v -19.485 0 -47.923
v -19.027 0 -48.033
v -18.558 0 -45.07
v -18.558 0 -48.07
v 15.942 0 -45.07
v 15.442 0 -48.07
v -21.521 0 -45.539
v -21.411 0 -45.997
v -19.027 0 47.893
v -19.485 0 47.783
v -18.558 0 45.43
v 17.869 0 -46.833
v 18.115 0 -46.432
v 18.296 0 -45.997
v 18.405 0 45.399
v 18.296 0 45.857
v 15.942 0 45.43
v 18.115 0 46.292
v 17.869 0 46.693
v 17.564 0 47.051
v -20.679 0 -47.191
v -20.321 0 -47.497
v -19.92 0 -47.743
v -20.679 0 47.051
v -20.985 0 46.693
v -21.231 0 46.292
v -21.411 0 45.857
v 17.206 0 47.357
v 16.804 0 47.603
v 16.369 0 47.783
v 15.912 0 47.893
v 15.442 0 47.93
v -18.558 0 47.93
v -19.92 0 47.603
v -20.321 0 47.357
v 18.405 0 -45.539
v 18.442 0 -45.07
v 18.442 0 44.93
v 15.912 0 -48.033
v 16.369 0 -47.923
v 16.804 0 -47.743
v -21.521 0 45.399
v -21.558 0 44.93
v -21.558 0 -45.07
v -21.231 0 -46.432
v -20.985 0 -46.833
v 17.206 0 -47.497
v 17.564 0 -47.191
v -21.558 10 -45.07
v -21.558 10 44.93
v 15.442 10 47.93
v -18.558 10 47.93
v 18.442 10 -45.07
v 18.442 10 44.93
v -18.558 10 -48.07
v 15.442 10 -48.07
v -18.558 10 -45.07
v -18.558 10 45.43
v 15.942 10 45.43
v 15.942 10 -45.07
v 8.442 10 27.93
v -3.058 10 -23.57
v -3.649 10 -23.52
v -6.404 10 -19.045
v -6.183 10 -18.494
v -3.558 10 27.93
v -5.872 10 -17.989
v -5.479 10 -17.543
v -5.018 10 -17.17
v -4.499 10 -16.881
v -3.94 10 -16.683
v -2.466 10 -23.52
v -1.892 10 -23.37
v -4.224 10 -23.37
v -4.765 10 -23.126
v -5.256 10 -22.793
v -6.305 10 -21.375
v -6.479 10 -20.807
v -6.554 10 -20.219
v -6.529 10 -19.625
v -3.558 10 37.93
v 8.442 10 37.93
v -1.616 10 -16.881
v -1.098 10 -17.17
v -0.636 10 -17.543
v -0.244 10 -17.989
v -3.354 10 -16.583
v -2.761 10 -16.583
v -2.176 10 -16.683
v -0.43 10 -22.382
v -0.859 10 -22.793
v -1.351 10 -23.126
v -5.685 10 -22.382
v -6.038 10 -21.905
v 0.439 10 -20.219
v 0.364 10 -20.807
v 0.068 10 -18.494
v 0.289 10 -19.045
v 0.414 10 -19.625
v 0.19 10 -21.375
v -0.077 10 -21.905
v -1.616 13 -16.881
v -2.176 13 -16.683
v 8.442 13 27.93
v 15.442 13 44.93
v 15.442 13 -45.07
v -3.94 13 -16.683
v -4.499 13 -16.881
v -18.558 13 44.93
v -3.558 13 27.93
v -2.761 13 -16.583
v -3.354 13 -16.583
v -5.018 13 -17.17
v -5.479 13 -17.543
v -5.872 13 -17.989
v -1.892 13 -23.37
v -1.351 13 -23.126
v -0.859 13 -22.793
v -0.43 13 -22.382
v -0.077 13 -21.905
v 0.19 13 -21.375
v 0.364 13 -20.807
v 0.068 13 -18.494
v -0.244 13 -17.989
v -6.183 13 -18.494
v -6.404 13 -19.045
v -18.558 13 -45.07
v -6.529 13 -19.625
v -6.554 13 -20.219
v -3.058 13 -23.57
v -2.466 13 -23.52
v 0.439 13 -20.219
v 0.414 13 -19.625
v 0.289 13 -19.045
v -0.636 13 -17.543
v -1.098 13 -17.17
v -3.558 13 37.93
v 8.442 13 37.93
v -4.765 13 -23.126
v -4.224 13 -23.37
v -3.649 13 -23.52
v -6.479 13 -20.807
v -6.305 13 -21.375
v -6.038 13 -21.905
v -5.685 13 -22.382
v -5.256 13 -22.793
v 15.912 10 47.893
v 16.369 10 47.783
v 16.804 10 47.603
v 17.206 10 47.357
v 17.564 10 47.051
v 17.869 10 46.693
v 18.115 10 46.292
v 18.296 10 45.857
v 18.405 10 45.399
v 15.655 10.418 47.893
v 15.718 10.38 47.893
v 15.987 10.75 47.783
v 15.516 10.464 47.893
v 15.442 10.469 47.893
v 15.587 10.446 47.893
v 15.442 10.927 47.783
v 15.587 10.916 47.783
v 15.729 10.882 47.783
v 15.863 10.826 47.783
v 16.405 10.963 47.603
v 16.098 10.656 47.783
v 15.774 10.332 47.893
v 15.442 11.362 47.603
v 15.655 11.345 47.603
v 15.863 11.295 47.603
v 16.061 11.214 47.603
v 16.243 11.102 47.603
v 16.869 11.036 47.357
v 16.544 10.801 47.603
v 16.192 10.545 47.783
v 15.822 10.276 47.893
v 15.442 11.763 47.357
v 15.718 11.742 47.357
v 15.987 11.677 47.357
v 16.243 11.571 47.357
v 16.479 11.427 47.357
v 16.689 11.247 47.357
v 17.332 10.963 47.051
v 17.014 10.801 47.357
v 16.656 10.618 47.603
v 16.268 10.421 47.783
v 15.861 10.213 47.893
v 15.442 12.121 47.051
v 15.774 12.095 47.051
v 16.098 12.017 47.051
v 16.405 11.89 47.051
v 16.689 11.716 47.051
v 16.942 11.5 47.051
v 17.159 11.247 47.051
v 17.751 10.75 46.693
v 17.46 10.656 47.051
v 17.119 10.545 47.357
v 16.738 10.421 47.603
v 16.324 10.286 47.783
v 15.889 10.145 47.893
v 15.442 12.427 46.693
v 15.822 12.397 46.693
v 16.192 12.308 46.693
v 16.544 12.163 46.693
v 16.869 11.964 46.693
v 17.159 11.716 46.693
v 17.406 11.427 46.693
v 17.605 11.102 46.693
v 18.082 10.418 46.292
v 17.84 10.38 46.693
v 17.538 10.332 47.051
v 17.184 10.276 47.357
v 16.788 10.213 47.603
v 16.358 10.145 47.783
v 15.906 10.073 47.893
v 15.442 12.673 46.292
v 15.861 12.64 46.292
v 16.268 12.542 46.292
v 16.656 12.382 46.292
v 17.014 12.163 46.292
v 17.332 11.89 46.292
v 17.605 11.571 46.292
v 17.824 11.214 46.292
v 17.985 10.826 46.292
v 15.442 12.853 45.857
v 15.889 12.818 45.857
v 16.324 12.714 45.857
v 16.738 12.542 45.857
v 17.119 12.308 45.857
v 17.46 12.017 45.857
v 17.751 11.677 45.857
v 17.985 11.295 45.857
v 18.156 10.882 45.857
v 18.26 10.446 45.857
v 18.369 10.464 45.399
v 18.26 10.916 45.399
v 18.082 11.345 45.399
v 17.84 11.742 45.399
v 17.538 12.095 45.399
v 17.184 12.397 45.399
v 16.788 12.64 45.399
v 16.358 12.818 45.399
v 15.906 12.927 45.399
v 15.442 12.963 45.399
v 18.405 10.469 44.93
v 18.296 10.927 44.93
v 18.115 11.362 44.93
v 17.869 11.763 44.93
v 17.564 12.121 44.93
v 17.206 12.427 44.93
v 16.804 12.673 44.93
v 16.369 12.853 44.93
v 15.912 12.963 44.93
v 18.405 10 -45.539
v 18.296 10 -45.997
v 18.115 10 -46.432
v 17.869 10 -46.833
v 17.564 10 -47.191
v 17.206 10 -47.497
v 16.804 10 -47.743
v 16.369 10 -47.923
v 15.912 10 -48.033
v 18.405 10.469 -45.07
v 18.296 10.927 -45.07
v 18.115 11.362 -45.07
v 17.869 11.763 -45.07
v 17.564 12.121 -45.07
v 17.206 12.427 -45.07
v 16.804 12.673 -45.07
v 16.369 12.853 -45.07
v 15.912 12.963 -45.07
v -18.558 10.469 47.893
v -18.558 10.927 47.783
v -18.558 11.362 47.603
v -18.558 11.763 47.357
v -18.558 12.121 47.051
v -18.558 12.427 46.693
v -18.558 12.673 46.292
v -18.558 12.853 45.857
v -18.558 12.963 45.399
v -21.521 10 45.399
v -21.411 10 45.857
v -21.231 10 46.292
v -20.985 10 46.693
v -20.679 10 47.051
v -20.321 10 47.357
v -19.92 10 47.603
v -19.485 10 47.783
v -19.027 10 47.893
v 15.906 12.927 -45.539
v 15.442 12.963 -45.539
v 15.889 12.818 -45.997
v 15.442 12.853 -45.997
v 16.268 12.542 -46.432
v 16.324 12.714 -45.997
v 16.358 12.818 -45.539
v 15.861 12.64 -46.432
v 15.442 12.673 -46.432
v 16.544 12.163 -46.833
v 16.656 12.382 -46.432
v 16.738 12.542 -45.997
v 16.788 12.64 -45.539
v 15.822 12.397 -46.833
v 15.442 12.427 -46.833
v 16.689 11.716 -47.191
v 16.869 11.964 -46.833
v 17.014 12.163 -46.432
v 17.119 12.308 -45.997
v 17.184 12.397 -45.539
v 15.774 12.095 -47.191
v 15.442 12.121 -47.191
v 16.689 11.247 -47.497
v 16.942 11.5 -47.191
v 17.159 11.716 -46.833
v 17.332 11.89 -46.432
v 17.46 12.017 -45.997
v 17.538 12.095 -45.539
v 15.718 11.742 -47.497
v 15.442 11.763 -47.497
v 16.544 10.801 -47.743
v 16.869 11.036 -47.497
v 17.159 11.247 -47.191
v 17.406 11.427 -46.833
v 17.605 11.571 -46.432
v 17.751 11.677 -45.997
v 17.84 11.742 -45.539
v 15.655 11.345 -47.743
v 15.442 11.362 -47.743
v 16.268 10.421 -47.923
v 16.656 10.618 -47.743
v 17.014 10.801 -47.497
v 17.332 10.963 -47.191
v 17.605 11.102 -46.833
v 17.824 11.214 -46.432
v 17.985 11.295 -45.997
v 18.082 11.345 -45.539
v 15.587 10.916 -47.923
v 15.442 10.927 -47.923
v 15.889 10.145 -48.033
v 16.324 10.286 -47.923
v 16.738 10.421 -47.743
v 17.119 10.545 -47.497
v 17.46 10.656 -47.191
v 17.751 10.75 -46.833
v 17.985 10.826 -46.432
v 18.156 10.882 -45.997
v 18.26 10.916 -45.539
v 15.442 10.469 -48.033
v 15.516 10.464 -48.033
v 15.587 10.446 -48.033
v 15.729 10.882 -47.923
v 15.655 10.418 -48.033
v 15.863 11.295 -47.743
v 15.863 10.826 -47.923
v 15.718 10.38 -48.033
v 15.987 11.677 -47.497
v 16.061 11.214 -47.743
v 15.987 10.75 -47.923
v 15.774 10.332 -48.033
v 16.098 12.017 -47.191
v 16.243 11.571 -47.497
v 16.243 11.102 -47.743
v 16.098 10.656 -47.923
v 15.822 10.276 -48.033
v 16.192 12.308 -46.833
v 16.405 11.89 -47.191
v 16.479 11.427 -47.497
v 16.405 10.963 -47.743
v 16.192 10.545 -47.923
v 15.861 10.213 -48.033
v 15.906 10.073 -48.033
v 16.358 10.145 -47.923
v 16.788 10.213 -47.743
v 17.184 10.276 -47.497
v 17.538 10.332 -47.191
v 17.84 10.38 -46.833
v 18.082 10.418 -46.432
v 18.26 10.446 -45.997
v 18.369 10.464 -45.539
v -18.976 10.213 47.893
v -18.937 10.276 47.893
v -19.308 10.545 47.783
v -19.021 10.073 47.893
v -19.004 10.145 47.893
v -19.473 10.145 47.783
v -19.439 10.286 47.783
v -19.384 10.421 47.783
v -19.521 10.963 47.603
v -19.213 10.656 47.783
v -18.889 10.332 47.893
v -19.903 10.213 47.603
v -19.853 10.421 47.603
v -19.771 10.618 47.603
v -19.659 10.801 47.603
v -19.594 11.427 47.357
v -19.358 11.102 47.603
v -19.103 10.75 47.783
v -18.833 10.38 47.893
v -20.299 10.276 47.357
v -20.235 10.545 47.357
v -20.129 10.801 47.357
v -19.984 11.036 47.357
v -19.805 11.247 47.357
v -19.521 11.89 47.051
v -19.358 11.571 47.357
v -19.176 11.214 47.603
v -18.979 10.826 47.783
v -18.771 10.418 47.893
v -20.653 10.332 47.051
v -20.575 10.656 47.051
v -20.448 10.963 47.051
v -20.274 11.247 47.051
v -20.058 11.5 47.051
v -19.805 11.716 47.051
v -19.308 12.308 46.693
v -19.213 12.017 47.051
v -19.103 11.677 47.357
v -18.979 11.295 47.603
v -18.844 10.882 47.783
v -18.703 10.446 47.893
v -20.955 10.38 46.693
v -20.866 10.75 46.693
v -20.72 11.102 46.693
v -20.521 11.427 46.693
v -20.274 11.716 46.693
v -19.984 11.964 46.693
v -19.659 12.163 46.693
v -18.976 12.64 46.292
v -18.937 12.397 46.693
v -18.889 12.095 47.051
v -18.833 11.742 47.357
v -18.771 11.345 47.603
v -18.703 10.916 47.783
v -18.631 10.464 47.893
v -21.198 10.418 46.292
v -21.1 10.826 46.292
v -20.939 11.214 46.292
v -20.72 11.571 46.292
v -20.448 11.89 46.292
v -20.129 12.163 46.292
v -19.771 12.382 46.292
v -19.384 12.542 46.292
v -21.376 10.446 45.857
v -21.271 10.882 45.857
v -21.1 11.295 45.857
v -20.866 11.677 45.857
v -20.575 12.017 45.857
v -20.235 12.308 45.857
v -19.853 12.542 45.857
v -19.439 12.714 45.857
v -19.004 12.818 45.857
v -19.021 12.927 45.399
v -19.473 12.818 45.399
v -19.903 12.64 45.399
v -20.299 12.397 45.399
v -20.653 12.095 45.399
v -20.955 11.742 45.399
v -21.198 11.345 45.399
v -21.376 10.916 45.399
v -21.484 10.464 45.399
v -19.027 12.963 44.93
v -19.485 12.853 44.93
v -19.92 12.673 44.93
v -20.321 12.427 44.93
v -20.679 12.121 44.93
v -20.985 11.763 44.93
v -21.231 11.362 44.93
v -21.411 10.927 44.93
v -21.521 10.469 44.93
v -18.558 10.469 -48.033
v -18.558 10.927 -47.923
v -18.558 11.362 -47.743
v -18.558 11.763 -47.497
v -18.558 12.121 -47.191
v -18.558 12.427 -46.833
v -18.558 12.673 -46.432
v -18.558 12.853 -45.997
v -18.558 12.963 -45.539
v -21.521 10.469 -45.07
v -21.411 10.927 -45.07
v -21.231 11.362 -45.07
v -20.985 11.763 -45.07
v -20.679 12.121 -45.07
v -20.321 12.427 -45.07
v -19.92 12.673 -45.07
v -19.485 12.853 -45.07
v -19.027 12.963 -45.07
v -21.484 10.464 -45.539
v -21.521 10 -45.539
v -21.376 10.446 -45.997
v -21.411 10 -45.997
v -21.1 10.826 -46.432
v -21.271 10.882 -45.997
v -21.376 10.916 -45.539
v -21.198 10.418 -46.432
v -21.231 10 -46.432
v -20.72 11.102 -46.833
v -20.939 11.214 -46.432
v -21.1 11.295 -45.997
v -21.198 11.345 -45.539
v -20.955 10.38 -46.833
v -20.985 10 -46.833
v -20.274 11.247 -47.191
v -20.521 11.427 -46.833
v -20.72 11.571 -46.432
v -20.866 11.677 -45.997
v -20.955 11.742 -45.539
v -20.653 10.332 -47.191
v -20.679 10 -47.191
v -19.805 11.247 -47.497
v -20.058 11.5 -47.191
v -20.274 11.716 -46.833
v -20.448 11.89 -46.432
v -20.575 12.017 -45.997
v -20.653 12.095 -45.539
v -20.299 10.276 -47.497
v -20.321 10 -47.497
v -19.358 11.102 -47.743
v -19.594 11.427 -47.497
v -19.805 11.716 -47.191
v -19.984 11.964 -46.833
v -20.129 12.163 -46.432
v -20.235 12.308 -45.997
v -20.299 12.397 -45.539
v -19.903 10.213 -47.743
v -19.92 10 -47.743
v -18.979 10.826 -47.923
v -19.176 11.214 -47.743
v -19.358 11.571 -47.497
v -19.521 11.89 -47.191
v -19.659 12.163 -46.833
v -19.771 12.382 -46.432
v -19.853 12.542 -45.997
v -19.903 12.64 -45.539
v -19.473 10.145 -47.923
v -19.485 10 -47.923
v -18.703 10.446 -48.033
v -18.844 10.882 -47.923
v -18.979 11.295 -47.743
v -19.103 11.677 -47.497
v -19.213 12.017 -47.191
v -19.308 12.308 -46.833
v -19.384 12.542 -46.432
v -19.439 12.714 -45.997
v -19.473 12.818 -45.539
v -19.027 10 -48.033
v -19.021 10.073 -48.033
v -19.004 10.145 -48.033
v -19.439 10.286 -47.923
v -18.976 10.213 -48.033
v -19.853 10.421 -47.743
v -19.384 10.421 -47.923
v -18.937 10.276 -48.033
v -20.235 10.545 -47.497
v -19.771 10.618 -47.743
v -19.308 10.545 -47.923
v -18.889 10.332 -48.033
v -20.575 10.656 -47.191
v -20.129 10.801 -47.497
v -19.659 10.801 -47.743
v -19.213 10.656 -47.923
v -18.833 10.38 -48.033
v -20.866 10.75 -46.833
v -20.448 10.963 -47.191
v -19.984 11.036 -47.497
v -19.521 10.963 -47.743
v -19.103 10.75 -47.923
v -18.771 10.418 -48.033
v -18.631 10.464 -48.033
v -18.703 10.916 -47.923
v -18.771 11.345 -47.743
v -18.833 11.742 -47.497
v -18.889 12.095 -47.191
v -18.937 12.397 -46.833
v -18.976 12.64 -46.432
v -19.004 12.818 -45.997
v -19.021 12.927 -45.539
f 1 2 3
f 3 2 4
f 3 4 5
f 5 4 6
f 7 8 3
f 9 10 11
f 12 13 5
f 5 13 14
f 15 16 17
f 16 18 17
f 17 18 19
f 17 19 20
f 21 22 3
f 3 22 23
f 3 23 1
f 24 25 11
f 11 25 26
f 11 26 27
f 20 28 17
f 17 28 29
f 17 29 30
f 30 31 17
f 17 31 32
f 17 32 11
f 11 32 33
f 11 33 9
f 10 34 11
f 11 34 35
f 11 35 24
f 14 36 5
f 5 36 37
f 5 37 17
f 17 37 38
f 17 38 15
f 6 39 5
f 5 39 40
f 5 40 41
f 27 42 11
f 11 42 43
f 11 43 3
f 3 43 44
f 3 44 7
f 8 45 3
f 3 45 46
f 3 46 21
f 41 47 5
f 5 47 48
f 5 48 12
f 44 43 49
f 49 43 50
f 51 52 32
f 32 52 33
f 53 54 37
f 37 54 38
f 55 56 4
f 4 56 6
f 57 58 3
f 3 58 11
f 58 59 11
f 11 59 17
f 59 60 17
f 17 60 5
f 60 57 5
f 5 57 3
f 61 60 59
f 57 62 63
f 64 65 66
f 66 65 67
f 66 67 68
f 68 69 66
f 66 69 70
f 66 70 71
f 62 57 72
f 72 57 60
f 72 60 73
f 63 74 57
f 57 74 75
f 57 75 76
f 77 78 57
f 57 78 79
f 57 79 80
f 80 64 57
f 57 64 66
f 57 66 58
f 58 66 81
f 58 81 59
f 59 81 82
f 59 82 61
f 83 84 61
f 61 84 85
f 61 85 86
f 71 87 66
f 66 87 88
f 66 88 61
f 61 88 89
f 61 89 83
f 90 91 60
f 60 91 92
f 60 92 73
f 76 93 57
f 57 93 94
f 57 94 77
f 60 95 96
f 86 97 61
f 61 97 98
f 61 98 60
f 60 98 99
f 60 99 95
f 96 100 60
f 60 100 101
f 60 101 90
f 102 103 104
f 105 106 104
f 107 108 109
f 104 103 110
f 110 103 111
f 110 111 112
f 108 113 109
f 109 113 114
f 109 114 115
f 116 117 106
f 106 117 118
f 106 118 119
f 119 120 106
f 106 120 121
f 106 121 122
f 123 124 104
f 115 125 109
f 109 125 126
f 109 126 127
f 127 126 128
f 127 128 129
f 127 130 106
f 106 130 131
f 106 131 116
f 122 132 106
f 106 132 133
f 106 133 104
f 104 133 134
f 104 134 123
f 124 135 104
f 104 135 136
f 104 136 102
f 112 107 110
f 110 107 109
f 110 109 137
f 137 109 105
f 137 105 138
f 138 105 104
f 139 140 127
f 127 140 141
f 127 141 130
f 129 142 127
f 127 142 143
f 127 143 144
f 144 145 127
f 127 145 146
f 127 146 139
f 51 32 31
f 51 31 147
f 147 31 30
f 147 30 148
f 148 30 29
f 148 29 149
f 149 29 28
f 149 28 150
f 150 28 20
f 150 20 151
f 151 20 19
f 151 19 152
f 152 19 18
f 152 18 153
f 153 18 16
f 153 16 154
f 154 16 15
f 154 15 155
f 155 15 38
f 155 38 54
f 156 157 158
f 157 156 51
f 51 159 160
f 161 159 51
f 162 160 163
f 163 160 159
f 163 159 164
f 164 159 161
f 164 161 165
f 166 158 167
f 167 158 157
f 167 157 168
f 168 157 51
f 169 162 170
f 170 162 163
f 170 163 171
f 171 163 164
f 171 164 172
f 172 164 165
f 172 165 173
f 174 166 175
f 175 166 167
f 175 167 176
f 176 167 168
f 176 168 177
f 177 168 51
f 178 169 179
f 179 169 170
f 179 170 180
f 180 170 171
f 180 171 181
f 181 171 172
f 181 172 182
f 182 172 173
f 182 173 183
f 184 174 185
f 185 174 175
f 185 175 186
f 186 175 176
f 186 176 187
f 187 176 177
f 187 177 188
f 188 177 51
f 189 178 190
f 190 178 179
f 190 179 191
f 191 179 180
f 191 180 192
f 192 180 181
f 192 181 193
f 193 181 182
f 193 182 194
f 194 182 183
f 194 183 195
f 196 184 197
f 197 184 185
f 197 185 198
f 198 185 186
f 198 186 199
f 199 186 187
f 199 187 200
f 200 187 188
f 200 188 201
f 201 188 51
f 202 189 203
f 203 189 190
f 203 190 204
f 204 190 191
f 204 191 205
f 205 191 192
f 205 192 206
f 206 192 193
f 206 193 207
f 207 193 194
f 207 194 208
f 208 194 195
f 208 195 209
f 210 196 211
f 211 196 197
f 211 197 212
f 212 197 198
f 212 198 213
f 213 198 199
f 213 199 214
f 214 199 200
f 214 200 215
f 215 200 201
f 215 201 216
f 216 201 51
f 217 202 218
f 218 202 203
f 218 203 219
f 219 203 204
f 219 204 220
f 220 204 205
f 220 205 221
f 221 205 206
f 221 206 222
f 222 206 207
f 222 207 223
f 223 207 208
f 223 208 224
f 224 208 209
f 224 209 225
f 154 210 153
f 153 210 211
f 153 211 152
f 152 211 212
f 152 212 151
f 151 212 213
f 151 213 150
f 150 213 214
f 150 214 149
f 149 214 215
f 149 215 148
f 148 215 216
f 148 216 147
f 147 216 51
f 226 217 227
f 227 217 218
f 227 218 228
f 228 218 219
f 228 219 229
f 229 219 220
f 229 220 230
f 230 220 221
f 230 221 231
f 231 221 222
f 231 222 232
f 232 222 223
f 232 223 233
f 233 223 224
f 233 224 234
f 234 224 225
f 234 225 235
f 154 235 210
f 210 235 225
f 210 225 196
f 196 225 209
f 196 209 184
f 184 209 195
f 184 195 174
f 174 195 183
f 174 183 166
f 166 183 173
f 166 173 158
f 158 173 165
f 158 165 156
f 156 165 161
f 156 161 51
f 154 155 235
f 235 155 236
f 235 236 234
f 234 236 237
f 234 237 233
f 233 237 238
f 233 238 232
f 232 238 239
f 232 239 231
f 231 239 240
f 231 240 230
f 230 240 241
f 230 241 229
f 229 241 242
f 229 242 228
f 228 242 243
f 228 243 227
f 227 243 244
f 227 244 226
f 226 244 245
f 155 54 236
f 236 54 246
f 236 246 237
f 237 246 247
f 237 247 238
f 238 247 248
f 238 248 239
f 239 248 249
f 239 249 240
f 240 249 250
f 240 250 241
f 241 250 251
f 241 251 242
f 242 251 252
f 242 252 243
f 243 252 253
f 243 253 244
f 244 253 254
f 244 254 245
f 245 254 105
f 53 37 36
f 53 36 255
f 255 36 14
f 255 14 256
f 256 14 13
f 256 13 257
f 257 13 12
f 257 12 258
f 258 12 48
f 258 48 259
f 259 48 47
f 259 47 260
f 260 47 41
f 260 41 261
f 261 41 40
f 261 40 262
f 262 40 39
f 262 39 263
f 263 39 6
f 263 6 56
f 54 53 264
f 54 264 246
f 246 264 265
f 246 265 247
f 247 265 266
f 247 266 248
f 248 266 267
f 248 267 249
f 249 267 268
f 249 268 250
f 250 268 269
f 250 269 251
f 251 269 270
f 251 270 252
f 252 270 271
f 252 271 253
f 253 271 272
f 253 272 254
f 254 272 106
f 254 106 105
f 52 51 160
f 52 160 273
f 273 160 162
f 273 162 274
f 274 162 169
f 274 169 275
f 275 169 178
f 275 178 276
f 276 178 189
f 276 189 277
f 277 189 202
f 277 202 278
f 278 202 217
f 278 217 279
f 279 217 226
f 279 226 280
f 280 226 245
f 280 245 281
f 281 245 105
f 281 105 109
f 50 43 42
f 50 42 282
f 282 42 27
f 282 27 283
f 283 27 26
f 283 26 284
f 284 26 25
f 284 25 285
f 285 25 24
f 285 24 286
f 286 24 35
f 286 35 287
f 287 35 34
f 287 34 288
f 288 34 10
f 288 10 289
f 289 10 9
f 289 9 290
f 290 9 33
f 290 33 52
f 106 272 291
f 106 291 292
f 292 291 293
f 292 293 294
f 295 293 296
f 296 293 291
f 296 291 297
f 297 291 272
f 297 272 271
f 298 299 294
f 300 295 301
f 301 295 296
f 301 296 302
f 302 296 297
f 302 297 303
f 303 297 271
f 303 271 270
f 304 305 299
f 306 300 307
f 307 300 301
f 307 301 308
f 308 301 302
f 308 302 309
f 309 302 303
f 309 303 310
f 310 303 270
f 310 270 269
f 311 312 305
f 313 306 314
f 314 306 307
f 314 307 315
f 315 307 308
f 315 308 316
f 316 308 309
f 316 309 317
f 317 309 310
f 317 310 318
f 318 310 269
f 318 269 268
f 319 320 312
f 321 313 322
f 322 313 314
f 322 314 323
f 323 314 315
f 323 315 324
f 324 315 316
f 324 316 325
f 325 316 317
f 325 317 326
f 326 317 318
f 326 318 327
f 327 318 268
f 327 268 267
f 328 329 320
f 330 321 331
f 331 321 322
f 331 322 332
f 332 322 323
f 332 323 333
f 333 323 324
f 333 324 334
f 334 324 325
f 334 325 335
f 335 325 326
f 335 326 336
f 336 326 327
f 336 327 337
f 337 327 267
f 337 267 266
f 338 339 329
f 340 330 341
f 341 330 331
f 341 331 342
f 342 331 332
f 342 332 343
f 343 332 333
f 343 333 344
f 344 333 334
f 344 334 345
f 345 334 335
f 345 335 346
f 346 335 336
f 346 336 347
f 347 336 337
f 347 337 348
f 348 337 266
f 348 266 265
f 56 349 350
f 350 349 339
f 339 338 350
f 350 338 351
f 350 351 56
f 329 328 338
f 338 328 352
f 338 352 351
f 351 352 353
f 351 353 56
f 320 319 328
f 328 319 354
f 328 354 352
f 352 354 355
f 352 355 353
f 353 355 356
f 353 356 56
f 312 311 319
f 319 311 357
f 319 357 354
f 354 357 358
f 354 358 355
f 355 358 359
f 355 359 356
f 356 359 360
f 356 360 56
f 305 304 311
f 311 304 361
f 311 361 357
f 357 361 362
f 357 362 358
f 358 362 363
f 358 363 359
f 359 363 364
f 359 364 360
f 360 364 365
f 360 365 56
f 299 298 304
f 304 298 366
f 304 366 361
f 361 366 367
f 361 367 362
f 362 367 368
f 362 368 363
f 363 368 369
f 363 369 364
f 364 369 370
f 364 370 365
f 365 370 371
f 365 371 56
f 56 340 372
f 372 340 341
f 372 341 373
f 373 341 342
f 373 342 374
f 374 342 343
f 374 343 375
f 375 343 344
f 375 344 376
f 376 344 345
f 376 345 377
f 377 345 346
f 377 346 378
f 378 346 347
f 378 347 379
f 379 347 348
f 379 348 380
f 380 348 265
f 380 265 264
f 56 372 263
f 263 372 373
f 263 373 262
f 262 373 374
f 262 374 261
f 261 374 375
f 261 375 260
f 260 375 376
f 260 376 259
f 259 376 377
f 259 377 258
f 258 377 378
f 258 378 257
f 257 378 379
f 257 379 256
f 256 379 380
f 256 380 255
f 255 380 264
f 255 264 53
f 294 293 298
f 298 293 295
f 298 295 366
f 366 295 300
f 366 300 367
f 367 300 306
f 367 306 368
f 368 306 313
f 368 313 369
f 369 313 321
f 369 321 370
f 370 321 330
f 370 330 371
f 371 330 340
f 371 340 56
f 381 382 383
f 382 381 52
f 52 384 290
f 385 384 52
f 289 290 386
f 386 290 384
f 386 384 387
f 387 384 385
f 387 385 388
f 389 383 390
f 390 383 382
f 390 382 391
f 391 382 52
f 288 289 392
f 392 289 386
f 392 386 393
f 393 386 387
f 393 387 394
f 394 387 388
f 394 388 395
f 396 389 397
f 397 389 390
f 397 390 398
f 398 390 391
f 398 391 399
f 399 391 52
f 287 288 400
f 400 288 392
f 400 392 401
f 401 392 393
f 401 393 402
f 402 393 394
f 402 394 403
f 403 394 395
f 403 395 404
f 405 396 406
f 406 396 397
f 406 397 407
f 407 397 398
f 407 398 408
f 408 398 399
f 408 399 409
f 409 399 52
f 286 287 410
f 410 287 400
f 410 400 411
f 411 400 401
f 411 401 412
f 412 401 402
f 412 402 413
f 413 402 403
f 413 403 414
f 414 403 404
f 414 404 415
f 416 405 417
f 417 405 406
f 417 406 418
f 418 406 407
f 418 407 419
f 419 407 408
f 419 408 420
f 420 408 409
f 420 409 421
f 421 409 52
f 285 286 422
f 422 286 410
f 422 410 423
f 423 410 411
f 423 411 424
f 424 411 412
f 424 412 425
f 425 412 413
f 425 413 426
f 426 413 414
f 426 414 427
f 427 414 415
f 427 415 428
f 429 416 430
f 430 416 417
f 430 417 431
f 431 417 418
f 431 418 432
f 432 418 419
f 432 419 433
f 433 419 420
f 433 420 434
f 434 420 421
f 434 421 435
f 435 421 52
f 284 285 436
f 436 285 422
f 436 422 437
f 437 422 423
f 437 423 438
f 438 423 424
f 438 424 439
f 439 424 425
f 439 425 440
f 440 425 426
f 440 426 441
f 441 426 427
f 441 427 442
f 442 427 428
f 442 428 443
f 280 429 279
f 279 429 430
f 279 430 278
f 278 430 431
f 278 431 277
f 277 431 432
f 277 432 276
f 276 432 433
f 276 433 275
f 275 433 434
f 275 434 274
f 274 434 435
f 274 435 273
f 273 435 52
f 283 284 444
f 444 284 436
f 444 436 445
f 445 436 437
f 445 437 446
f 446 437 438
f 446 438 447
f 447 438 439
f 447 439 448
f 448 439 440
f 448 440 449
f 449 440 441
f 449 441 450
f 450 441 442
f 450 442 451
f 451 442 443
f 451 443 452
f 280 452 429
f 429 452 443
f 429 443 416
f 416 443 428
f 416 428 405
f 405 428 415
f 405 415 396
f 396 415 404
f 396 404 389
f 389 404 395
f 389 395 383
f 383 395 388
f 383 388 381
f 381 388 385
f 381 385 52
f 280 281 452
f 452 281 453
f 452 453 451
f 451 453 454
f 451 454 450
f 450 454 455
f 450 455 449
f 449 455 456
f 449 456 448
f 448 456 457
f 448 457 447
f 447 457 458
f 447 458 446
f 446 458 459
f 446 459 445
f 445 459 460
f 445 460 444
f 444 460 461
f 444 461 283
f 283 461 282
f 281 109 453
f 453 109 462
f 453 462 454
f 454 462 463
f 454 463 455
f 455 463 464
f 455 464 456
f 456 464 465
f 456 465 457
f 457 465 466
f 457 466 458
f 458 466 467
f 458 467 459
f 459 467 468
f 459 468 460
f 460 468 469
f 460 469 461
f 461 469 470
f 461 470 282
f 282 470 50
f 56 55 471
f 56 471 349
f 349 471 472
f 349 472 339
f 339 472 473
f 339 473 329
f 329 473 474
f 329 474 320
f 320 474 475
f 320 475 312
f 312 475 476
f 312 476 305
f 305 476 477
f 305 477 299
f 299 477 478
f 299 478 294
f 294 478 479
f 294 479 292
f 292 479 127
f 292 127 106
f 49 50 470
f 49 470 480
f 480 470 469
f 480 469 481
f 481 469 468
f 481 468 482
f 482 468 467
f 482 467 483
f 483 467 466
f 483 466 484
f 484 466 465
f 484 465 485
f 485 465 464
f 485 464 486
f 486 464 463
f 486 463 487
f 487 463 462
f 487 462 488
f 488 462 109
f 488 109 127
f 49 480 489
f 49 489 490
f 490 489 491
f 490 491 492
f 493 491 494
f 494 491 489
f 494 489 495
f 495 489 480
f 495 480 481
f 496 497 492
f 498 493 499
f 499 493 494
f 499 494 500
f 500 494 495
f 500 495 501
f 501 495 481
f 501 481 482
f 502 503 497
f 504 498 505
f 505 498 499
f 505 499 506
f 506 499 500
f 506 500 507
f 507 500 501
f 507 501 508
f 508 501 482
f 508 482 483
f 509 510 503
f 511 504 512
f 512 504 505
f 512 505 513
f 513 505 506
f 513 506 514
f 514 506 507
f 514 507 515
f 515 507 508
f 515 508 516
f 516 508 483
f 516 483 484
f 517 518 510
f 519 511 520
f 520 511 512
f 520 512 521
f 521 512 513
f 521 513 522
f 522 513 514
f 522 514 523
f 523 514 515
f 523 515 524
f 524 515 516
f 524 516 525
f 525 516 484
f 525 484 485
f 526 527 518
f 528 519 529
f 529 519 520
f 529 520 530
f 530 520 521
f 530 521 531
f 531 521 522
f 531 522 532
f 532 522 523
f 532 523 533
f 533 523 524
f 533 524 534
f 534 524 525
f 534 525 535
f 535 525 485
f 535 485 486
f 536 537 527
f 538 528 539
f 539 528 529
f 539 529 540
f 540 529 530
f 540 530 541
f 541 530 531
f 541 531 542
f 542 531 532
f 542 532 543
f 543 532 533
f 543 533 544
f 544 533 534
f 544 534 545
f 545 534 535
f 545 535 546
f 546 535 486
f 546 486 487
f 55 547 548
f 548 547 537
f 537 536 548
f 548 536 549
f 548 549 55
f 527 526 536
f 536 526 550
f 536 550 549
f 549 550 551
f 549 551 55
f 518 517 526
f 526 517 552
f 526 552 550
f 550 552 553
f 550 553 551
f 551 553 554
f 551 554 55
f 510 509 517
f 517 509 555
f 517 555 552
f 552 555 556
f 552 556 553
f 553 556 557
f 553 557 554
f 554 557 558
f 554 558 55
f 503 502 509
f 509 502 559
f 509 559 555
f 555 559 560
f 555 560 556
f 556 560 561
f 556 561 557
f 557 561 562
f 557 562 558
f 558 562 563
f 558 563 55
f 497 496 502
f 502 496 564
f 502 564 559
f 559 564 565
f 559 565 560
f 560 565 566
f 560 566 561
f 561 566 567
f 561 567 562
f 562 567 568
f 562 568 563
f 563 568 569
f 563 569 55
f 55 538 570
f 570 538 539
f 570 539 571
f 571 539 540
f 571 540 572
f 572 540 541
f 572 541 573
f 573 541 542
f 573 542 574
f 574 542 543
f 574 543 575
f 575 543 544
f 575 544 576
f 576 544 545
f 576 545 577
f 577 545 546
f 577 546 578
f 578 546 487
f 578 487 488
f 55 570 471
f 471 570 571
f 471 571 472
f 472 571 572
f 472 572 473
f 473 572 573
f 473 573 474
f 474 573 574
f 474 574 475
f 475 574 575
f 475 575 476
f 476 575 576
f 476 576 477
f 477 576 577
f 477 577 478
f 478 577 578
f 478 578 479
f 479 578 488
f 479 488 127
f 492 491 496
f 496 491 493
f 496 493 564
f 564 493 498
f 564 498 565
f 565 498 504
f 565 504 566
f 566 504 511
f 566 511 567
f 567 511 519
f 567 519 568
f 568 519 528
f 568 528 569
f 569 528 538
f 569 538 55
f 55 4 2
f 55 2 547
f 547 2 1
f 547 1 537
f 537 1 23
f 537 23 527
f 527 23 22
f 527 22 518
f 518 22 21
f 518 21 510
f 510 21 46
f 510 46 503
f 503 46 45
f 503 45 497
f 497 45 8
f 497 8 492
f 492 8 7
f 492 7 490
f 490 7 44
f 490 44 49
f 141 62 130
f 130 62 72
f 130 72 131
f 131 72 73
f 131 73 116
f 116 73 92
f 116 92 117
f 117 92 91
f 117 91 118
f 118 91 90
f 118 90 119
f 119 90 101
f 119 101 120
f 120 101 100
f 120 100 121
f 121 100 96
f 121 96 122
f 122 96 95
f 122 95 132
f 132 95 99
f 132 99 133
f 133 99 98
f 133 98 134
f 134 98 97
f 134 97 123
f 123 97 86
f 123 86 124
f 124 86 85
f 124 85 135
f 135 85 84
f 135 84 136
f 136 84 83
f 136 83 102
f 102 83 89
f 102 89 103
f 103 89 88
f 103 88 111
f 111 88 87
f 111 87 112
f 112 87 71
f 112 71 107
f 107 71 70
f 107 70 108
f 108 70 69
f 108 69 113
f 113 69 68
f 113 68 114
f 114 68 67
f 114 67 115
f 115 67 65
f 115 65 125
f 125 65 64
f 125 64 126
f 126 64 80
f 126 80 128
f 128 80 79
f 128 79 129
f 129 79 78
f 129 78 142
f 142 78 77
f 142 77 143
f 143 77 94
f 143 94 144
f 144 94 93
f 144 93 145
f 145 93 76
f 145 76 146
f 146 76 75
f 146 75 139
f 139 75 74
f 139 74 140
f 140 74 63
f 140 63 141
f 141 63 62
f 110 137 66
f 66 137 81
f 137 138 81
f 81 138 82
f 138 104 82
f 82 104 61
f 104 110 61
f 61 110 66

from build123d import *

# Parameters (mm, degrees)
ESBO_O1_W                = 40
ESBO_O1_H                = 96
ESBO_O1_W_2              = 34.5
ESBO_O1_H_2              = 90.5
RESSALTO_EXTRUS_O1_DEPTH = 10
ESBO_O2_W                = 40
ESBO_O2_H                = 96
RESSALTO_EXTRUS_O2_DEPTH = 3
ESBO_O3_R                = 3.5
CORTE_EXTRUS_O1_DEPTH    = 3
ESBO_O4_W                = 12
ESBO_O4_H                = 10
CORTE_EXTRUS_O2_DEPTH    = 3
FILETE1_R                = 3
ESBO_O5_RX               = 3.5
ESBO_O5_RY               = 3.5
ESBO_O5_W                = 12
ESBO_O5_H                = 10
RESSALTO_EXTRUS_O3_DEPTH = 3
ESBO_O6_R                = 3.5
CORTE_EXTRUS_O3_DEPTH    = 3
ESBO_O7_W                = 12
ESBO_O7_H                = 10
CORTE_EXTRUS_O4_DEPTH    = 3
ESBO_O8_R                = 3.5
ESBO_O8_W                = 12
ESBO_O8_H                = 10
RESSALTO_EXTRUS_O4_DEPTH = 3
ESBO_O9_R                = 3.5
ESBO_O9_W                = 12
ESBO_O9_H                = 10
CORTE_EXTRUS_O5_DEPTH    = 3


with BuildPart() as part:
    # Esboço1 → Ressalto-extrusão1 (new body)
    with BuildSketch(Plane(origin=(0, 0, 0), x_dir=(1, 0, 0), z_dir=(0, 1, 0))):
        with Locations((-1.557629238, 0.07005309)):
            Rectangle(ESBO_O1_W, ESBO_O1_H)
        with Locations((-1.307629238, -0.17994691)):
            Rectangle(ESBO_O1_W_2, ESBO_O1_H_2, mode=Mode.SUBTRACT)
    extrude(amount=RESSALTO_EXTRUS_O1_DEPTH)

    # Esboço2 → Ressalto-extrusão2 (add)
    with BuildSketch(Plane(origin=(0, 10, 0), x_dir=(1, 0, 0), z_dir=(0, 1, 0))):
        with Locations((-1.557629238, 0.07005309)):
            Rectangle(ESBO_O2_W, ESBO_O2_H)
    extrude(amount=RESSALTO_EXTRUS_O2_DEPTH)

    # Esboço3 → Corte-extrusão1 (cut)
    with BuildSketch(Plane.XZ.offset(-10)):
        with Locations(Location((-4.557629238, 23.42994691, 0), (0, 0, 270))):
            Circle(ESBO_O3_R)
    extrude(amount=-CORTE_EXTRUS_O1_DEPTH, mode=Mode.SUBTRACT)

    # Esboço4 → Corte-extrusão2 (cut)
    with BuildSketch(Plane.XZ.offset(-10)):
        with Locations((-7.557629238, -36.07005309)):
            Rectangle(ESBO_O4_W, ESBO_O4_H)
    extrude(amount=-CORTE_EXTRUS_O2_DEPTH, mode=Mode.SUBTRACT)

    # Filete1
    filete1_edges = [part.edges().sort_by_distance(p)[0] for p in [
        (-21.557629238, 13, -0.07005309),
        (-1.557629238, 13, 47.92994691),
        (18.442370762, 13, -0.07005309),
        (-1.557629238, 13, -48.07005309),
        (-21.557629238, 6.5, -48.07005309),
        (18.442370762, 6.5, -48.07005309),
        (18.442370762, 6.5, 47.92994691),
        (-21.557629238, 6.5, 47.92994691),
    ]]
    fillet(filete1_edges, radius=FILETE1_R)

    # Esboço5 → Ressalto-extrusão3 (add)
    with BuildSketch(Plane.XZ.offset(-10)):
        with Locations(Location((-4.557629238, 23.42994691), (0, 0, -90))):
            Ellipse(ESBO_O5_RX, ESBO_O5_RY)
        with Locations((-7.557629238, -36.07005309)):
            Rectangle(ESBO_O5_W, ESBO_O5_H)
    extrude(amount=-RESSALTO_EXTRUS_O3_DEPTH)

    # Esboço6 → Corte-extrusão3 (cut)
    with BuildSketch(Plane.XZ.offset(-10)):
        with Locations(Location((-2.557629238, 20.92994691, 0), (0, 0, 270))):
            Circle(ESBO_O6_R)
    extrude(amount=-CORTE_EXTRUS_O3_DEPTH, mode=Mode.SUBTRACT)

    # Esboço7 → Corte-extrusão4 (cut)
    with BuildSketch(Plane.XZ.offset(-10)):
        with Locations((-7.557629238, -36.07005309)):
            Rectangle(ESBO_O7_W, ESBO_O7_H)
    extrude(amount=-CORTE_EXTRUS_O4_DEPTH, mode=Mode.SUBTRACT)

    # Esboço8 → Ressalto-extrusão4 (add)
    with BuildSketch(Plane.XZ.offset(-10)):
        with Locations((-2.557629238, 20.92994691)):
            Circle(ESBO_O8_R)
        with Locations((-7.557629238, -36.07005309)):
            Rectangle(ESBO_O8_W, ESBO_O8_H)
    extrude(amount=-RESSALTO_EXTRUS_O4_DEPTH)

    # Esboço9 → Corte-extrusão5 (cut)
    with BuildSketch(Plane(origin=(0, 10, 0), x_dir=(-1, 0, 0), z_dir=(0, -1, 0))):
        with Locations(Location((3.057629238, 20.07005309, 0), (0, 0, 90))):
            Circle(ESBO_O9_R)
        with Locations((-2.442370762, -32.92994691)):
            Rectangle(ESBO_O9_W, ESBO_O9_H)
    extrude(amount=-CORTE_EXTRUS_O5_DEPTH, mode=Mode.SUBTRACT)


solid = part.part
